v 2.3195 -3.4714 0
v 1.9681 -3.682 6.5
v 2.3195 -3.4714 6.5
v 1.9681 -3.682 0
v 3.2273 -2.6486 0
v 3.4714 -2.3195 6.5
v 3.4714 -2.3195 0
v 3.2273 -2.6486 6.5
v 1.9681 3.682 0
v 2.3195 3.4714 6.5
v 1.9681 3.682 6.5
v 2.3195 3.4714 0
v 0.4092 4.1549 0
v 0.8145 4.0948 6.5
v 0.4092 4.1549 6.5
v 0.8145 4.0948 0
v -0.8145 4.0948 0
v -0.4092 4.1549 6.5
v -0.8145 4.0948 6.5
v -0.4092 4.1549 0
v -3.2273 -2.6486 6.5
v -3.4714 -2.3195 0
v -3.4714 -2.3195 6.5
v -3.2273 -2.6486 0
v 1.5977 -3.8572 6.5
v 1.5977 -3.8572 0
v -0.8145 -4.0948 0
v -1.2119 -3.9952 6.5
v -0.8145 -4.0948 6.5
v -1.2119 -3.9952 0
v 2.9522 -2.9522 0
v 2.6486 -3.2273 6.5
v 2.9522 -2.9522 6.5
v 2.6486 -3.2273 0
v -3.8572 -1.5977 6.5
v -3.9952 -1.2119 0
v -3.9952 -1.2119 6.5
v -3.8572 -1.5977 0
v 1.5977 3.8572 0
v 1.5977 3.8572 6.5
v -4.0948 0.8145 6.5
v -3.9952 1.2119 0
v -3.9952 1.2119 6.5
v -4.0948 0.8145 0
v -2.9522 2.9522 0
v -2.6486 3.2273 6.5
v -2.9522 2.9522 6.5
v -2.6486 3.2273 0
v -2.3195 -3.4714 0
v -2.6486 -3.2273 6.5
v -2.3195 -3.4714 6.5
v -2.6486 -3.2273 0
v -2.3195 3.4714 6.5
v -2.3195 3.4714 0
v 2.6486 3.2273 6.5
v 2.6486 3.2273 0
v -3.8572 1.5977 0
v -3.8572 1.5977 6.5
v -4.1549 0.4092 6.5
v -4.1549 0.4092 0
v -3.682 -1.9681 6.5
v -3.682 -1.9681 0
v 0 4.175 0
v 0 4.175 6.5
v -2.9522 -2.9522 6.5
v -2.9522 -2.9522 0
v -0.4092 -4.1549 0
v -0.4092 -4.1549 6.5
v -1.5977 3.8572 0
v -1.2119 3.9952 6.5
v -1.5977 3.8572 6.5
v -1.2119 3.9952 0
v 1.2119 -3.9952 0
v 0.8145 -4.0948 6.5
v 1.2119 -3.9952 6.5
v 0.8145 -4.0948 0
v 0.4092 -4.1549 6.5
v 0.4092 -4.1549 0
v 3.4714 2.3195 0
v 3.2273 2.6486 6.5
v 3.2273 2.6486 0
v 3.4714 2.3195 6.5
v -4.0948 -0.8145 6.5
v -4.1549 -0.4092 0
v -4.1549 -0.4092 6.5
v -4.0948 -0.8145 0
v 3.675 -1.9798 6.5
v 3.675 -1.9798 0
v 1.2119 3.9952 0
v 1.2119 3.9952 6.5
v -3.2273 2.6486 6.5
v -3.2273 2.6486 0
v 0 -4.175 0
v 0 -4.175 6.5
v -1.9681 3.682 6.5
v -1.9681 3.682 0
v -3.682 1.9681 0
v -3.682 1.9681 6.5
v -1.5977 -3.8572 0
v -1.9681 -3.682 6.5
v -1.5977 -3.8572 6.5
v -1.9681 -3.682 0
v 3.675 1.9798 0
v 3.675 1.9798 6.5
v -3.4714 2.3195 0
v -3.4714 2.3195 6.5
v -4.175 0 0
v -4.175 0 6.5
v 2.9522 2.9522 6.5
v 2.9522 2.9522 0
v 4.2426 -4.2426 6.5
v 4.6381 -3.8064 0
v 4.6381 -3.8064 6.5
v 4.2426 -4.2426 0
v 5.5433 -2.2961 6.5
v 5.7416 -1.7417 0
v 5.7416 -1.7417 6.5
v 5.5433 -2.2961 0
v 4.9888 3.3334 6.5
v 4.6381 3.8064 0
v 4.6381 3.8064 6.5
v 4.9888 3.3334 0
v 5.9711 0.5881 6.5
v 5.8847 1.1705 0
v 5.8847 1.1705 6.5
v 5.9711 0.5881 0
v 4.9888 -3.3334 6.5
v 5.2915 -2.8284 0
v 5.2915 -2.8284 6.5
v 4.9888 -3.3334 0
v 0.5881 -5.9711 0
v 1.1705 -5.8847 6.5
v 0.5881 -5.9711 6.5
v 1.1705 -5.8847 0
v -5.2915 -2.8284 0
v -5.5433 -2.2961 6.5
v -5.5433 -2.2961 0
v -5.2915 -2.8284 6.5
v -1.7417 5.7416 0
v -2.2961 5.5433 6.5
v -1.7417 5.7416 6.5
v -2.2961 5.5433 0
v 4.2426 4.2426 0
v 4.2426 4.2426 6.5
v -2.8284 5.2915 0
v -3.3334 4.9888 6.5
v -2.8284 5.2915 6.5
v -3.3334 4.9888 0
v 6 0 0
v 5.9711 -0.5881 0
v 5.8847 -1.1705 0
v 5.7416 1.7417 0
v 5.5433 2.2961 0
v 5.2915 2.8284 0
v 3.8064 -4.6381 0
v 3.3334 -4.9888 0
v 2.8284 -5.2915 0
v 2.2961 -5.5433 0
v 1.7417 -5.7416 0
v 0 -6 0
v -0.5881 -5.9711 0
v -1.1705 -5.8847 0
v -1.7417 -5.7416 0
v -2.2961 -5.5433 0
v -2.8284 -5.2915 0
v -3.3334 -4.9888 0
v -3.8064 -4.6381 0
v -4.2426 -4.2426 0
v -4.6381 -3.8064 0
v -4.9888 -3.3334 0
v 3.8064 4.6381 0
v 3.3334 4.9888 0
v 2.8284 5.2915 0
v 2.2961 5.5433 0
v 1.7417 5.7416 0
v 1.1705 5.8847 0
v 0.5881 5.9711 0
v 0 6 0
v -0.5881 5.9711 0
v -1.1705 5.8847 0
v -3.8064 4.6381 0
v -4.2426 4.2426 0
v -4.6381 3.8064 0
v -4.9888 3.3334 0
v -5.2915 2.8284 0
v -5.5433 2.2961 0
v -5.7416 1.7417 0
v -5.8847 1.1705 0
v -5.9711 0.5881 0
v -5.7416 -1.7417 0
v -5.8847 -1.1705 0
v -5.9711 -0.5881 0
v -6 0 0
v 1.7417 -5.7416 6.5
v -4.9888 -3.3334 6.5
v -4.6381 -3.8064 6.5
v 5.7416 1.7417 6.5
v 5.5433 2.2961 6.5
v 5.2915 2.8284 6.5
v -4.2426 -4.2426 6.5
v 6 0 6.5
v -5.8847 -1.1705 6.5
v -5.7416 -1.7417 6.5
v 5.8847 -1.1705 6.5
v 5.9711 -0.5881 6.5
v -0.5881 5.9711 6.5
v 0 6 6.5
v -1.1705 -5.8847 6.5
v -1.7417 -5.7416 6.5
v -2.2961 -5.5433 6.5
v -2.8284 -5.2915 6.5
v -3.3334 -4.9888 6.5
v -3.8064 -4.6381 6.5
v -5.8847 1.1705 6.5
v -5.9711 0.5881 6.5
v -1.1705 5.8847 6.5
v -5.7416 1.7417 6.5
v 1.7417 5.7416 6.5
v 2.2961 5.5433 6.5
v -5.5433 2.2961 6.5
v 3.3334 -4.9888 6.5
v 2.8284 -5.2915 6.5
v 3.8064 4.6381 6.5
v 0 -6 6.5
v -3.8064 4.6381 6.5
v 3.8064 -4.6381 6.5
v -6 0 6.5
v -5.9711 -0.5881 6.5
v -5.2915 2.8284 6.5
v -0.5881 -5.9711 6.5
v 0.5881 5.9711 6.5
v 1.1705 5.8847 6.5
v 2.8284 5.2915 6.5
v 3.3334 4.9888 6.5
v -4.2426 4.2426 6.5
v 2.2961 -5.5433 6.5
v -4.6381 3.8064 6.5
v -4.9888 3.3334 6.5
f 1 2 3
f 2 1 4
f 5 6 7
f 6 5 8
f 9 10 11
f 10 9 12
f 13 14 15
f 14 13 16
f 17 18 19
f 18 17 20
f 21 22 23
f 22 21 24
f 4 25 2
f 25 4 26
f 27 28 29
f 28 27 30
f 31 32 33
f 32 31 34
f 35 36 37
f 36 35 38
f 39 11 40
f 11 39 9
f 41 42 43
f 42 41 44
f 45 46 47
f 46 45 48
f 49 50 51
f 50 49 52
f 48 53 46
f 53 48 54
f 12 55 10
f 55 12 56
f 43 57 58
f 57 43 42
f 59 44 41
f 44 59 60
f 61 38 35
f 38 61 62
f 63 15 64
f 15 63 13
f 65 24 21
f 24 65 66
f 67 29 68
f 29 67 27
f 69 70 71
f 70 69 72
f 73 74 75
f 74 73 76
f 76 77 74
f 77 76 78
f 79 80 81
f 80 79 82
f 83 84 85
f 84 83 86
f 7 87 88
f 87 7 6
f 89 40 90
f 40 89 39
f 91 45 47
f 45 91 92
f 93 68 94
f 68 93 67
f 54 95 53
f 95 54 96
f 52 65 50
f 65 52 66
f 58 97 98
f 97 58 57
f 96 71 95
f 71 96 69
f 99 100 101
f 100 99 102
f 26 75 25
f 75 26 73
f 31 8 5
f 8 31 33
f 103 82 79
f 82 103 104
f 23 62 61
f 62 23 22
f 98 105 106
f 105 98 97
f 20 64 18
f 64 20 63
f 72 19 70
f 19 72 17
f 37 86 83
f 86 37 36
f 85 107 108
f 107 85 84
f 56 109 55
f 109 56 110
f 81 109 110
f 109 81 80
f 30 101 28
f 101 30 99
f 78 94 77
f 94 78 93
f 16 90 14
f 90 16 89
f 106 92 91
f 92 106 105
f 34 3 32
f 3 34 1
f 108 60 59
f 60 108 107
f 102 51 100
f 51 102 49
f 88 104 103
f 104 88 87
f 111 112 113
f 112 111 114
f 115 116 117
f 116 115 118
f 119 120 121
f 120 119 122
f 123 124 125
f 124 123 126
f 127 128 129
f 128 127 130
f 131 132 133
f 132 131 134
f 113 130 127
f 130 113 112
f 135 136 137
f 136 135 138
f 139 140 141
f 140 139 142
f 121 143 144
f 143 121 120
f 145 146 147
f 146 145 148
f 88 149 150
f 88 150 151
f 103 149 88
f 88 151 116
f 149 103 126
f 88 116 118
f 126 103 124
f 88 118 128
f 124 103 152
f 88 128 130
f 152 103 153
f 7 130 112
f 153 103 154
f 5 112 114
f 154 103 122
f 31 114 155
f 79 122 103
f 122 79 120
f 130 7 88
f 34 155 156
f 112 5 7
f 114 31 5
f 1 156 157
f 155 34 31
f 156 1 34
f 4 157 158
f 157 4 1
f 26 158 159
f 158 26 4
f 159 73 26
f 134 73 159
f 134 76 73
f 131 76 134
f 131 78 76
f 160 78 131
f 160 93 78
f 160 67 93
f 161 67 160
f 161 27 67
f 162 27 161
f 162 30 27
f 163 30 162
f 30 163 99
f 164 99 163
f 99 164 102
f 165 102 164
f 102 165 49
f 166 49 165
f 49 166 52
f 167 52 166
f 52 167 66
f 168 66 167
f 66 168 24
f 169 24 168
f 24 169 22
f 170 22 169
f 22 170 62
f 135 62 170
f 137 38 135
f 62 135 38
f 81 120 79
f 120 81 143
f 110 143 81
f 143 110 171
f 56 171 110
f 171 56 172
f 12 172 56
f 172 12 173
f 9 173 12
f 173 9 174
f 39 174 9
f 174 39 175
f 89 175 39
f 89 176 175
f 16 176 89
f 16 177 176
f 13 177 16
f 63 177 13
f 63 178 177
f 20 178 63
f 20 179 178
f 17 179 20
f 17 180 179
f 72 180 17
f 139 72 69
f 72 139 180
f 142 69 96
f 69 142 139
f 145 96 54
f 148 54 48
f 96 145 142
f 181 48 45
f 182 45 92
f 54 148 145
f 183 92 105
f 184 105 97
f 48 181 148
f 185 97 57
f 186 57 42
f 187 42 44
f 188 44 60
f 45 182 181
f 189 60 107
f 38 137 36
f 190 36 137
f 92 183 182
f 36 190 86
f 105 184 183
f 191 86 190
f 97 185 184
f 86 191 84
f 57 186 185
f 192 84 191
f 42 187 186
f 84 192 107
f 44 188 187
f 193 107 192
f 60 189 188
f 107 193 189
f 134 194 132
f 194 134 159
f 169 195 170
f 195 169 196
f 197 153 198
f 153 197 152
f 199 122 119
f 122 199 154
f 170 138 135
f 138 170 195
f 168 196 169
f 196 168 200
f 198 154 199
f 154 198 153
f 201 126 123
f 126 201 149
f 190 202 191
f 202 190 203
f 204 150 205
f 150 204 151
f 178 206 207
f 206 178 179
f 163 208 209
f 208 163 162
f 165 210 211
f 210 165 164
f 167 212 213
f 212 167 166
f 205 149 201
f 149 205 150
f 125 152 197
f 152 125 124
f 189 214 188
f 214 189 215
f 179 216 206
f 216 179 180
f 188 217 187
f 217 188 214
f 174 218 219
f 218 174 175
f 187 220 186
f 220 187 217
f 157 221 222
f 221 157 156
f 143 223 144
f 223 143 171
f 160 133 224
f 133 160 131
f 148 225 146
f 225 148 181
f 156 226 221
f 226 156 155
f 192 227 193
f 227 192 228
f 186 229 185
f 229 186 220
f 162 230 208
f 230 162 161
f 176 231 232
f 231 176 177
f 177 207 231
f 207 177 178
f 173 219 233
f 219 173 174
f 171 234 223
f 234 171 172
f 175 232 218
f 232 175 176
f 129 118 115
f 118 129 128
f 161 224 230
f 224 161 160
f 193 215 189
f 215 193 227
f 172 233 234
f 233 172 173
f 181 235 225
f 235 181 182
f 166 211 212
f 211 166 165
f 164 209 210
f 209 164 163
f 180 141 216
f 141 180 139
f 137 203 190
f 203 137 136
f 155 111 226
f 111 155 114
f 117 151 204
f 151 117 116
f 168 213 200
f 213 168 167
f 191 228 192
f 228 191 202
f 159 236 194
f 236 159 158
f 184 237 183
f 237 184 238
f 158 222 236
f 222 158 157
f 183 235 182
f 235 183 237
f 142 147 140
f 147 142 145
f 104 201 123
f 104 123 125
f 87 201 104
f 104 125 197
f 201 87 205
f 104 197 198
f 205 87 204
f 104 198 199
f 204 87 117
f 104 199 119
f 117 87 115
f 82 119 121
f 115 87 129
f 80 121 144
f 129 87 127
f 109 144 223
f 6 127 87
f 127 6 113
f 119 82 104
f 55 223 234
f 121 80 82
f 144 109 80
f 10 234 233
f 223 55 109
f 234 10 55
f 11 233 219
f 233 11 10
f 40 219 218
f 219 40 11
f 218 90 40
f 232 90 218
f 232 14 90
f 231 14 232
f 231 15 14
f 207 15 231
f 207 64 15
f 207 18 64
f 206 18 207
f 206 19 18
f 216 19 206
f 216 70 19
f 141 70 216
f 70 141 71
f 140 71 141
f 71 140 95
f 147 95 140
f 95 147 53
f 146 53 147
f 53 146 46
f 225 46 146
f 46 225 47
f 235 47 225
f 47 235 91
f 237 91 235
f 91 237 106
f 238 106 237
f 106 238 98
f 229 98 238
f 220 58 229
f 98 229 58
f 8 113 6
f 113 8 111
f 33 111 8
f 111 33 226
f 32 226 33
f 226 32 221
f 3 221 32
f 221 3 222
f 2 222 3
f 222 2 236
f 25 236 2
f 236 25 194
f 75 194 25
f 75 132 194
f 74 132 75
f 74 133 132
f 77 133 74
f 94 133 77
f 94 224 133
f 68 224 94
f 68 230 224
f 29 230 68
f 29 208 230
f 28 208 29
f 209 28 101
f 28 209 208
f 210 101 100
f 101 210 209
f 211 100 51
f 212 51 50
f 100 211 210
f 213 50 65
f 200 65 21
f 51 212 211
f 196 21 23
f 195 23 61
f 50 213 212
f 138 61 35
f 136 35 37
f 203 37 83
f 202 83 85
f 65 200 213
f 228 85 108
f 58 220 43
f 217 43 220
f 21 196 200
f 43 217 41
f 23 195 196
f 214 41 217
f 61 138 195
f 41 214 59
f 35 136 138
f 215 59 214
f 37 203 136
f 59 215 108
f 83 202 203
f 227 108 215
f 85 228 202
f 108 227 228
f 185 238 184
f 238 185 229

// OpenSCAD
// file: parameters.scad
// =============================================================================
// Gen-CE — nightly 2026-10-14 (physics_scorer, honest magpylib watts)
// Wire-saver stator for the Gen-CD rotors: only 3.9 mm of copper (≈9 layers), magnet faces ≈6.5 mm apart, peak Bz ≈0.70 T. Uses ≈300 m of wire (≈80 m less than Gen-CD) and still clears Gen-BX; shares every rotor part, the steel, the frame rods and the bearing bridges with Gen-CD, so the two stators swap on the same machine.
// Clocking 0 deg (magnets N facing S) + D-flat keyed bore + index notch + flip-symmetric hole map.
// Windable 2-piece bobbin; turns = physics_scorer turns_fit; copper only between flanges.
// Steel back-iron: 2× Ø198 × 4.76 mm (3/16") mild-steel discs (steel_backiron_disc.dxf); magnets sit ON the steel
// (through-pockets) -> score with --back-iron. Night 2026-10-14.
// =============================================================================
topology            = "dual_rotor";

// --- Wire / winding (physics_scorer winding-fit) -------------------------------
wire_awg            = 26;
wire_od             = 0.45;     // insulated OD mm (bare 0.405)
fill_realistic      = 0.65;     // insulated-wire area / window (DENSE layered wind with a jig; scorer cap 0.65)
turns               = 288;       // = physics_scorer turns_fit (do NOT raise)
coil_former_type    = "bobbin";
coil_core_inset     = 18.10;     // radial copper build: hub = copper boundary inset by this
wind_build_axial    = 0.0;      // nothing proud of the flanges
wind_build_radial   = 0.0;

// --- Bobbin (base + lid) ---------------------------------------------------------
coil_id_r           = 64.00;    // copper boundary sector
coil_od_r           = 104.00;
span_deg            = 26.87;    // = pitch - 2*asin((wall+0.85)/coil_id_r) -> >=1.2 mm stator web
former_web          = 3.90;     // copper height between flanges (TALL copper: steel keeps Bz up)
flange_t            = 0.80;     // >= 0.8 mm FDM wall rule (tall winds push on the flanges)
wall                = 0.80;     // flange lip beyond copper
former_bare_h       = former_web + 2 * flange_t;
coil_envelope_h     = former_bare_h + 2 * wind_build_axial;
tab_w               = 7.0;
tab_len             = 7.0;
tab_h               = former_bare_h / 2;
pin_d               = 1.9;      // 1.75 mm filament locating pin
coil_mount_r        = coil_od_r + 0.2 + 4.0;
lead_y              = 1.6;
lead_slot_w         = 0.9;
lead_groove_d       = 0.6;

// --- Gap -------------------------------------------------------------------------
run_clear           = 0.50;     // rotor face -> flange
gap_spacer_h        = run_clear + wind_build_axial;
m2m                 = coil_envelope_h + 2 * run_clear;   // rotor face to rotor face (= gap_sleeve length)

// --- Stator ----------------------------------------------------------------------
coil_stations       = 12;
bay_clear           = 0.35;     // 0.35 mm: bobbin BASES print IN PLACE inside the stator bays (print-in-place gap), then pop out
stator_thick        = former_bare_h;                        // bobbins flush both faces
stator_od           = 229.0;
shaft_clear_stator  = 14.0;     // stator is static; gap sleeve OD 12 spins inside
stator_ir           = 58.85;    // ANNULAR stator: open centre (nested one-plate pack); inner rim 4.0 mm

// --- Rotor(s) --------------------------------------------------------------------
magnet_Br           = 1.43;     // N52
magnet_d_large      = 20.0;
magnet_h_large      = 5.0;      // one O20x5 per pocket
magnet_h_small      = 5.0;      // unused: no O5 pockets in this kit
halbach_magnetisation = "none";  // NO O5 assist magnets in this kit (scan: they lower the 4-pole score)
rotor_b_same_axis   = true;     // same-index magnets share one axis: N faces S across the gap
large_pocket_d      = 20.3;
small_pocket_d      = 5.3;
pocket_h            = 5.00;     // THROUGH the carrier: magnet back face sits on the steel disc (FLUSH seat: carrier = magnet height, magnet face level with the rotor face)
large_n             = 8;
R_large             = 86.0;
small_r_list        = [];       // no O5 pockets
carrier_od          = 198.0;
ring_ir             = 72.85;    // RING rotor: PLA magnet ring r ring_ir..carrier_od/2 (steel disc = structural rotor)
hub_flange_od       = 74.0;     // separate rotor_hub flange (inside the ring, flush with the ring face)
csk_d               = 6.6;      // M3 countersunk head pocket (ISO 10642 head 6.0 nominal) on the stator face
csk_depth           = 1.55;     // = (csk_d - m3_clear) / 2: 90 deg cone; head sits 0.3 mm below the face
n_seg               = 8;        // magnet-carrier ARCS per rotor (segmented carrier)
seg_deg             = 360 / n_seg;
seg_start           = -22.5;   // arc edge angle (between pocket 0 and its clamp bolt)
seg_kerf_deg        = 0.4;      // gap between neighbouring arcs on the steel
carrier_thick       = pocket_h;
hub_h               = 12.0;     // > steel_t + insert: radial set-screw clears the steel
hub_od              = 24.0;     // slim hub so the M4 brace rods fit at R~18 inside the coil ring
hub_insert_d        = 4.0;      // M3 heat-set insert, radial, bears on the D-flat
rotor_b_offset_deg  = 0.0;      // CLOCKING: magnets directly opposite
shaft_key           = "dflat";
dflat_depth         = 0.5;      // 8 mm shaft with 0.5 mm flat (7.5 across flat)
index_notch_d       = 3.0;

// --- Steel back-iron (buyable laser-cut) -------------------------------------------
steel_t             = 4.76;      // mild steel thickness (image method ignores it; sized from steel_flux.py so the return path stays well below saturation)
steel_center_hole   = 26.0;     // slips over the rotor hub (OD 24)
steel_od            = carrier_od;   // steel disc OD = rotor carrier OD

// --- Modular MAX interface ----------------------------------------------------------
shaft_bore          = 8.35;
dflat_x             = 4.0 - dflat_depth + (shaft_bore - 8.0) / 2;
bearing_d           = 21.85;
bearing_h           = 7.2;
m3_clear            = 3.5;
bolt_r_inner        = 30.0;     // M3 steel-disc clamp bolts (inside the magnet ring)
bolt_n_inner        = 4;
bolt_inner_angles   = [0, 90, 180, 270];
bolt_r_outer        = 86.0;     // second M3 steel-disc clamp ring
bolt_outer_angles   = [22.5, 67.5, 112.5, 157.5, 202.5, 247.5, 292.5, 337.5];
flange_bolt_r       = 109.5;     // frame rods: OUTSIDE the rotor OD (rotors spin inside them)
flange_bolt_n       = 4;
flange_bolt_offset  = 45.00;    // between coil stations -> never cuts a lead groove/tab
brace_r             = 18.0;
brace_d             = 4.3;      // temporary M4 jack rods (assembly only)
brace_n             = 4;
brace_angles        = [45, 135, 225, 315];          // flip-symmetric

spacer_pad_od       = 14.0;
spacer_pad_id       = m3_clear;
endbell_od          = 229.0;
endbell_thick       = 8.0;
endbell_shaft_clear = 10.0;
collar_h            = 10.0;
standoff_od         = 9.0;
frame_standoff_h    = run_clear + carrier_thick + hub_h + collar_h + 2.0;
sleeve_od           = 12.0;
plate_max_mm        = 410;

$fn = 64;
// main file
// Gen-CE — gap sleeve: rigid spacer on the shaft BETWEEN the two rotor carriers (passes through the stator
// hole). Length = m2m, so it sets the magnet gap and carries the full magnet pull. Print x1, upright.
include <parameters.scad>;
$fn = 64;
// D-flat keyed bore: flat faces +X (angle 0 = magnet pocket 0 = index notch)
module dflat_bore(h) {
    intersection() {
        cylinder(d=shaft_bore, h=h);
        translate([-shaft_bore, -shaft_bore, 0]) cube([shaft_bore + dflat_x, 2*shaft_bore, h]);
    }
}

difference() {
    cylinder(d=sleeve_od, h=m2m);
    translate([0, 0, -0.1]) dflat_bore(m2m + 0.2);
}
